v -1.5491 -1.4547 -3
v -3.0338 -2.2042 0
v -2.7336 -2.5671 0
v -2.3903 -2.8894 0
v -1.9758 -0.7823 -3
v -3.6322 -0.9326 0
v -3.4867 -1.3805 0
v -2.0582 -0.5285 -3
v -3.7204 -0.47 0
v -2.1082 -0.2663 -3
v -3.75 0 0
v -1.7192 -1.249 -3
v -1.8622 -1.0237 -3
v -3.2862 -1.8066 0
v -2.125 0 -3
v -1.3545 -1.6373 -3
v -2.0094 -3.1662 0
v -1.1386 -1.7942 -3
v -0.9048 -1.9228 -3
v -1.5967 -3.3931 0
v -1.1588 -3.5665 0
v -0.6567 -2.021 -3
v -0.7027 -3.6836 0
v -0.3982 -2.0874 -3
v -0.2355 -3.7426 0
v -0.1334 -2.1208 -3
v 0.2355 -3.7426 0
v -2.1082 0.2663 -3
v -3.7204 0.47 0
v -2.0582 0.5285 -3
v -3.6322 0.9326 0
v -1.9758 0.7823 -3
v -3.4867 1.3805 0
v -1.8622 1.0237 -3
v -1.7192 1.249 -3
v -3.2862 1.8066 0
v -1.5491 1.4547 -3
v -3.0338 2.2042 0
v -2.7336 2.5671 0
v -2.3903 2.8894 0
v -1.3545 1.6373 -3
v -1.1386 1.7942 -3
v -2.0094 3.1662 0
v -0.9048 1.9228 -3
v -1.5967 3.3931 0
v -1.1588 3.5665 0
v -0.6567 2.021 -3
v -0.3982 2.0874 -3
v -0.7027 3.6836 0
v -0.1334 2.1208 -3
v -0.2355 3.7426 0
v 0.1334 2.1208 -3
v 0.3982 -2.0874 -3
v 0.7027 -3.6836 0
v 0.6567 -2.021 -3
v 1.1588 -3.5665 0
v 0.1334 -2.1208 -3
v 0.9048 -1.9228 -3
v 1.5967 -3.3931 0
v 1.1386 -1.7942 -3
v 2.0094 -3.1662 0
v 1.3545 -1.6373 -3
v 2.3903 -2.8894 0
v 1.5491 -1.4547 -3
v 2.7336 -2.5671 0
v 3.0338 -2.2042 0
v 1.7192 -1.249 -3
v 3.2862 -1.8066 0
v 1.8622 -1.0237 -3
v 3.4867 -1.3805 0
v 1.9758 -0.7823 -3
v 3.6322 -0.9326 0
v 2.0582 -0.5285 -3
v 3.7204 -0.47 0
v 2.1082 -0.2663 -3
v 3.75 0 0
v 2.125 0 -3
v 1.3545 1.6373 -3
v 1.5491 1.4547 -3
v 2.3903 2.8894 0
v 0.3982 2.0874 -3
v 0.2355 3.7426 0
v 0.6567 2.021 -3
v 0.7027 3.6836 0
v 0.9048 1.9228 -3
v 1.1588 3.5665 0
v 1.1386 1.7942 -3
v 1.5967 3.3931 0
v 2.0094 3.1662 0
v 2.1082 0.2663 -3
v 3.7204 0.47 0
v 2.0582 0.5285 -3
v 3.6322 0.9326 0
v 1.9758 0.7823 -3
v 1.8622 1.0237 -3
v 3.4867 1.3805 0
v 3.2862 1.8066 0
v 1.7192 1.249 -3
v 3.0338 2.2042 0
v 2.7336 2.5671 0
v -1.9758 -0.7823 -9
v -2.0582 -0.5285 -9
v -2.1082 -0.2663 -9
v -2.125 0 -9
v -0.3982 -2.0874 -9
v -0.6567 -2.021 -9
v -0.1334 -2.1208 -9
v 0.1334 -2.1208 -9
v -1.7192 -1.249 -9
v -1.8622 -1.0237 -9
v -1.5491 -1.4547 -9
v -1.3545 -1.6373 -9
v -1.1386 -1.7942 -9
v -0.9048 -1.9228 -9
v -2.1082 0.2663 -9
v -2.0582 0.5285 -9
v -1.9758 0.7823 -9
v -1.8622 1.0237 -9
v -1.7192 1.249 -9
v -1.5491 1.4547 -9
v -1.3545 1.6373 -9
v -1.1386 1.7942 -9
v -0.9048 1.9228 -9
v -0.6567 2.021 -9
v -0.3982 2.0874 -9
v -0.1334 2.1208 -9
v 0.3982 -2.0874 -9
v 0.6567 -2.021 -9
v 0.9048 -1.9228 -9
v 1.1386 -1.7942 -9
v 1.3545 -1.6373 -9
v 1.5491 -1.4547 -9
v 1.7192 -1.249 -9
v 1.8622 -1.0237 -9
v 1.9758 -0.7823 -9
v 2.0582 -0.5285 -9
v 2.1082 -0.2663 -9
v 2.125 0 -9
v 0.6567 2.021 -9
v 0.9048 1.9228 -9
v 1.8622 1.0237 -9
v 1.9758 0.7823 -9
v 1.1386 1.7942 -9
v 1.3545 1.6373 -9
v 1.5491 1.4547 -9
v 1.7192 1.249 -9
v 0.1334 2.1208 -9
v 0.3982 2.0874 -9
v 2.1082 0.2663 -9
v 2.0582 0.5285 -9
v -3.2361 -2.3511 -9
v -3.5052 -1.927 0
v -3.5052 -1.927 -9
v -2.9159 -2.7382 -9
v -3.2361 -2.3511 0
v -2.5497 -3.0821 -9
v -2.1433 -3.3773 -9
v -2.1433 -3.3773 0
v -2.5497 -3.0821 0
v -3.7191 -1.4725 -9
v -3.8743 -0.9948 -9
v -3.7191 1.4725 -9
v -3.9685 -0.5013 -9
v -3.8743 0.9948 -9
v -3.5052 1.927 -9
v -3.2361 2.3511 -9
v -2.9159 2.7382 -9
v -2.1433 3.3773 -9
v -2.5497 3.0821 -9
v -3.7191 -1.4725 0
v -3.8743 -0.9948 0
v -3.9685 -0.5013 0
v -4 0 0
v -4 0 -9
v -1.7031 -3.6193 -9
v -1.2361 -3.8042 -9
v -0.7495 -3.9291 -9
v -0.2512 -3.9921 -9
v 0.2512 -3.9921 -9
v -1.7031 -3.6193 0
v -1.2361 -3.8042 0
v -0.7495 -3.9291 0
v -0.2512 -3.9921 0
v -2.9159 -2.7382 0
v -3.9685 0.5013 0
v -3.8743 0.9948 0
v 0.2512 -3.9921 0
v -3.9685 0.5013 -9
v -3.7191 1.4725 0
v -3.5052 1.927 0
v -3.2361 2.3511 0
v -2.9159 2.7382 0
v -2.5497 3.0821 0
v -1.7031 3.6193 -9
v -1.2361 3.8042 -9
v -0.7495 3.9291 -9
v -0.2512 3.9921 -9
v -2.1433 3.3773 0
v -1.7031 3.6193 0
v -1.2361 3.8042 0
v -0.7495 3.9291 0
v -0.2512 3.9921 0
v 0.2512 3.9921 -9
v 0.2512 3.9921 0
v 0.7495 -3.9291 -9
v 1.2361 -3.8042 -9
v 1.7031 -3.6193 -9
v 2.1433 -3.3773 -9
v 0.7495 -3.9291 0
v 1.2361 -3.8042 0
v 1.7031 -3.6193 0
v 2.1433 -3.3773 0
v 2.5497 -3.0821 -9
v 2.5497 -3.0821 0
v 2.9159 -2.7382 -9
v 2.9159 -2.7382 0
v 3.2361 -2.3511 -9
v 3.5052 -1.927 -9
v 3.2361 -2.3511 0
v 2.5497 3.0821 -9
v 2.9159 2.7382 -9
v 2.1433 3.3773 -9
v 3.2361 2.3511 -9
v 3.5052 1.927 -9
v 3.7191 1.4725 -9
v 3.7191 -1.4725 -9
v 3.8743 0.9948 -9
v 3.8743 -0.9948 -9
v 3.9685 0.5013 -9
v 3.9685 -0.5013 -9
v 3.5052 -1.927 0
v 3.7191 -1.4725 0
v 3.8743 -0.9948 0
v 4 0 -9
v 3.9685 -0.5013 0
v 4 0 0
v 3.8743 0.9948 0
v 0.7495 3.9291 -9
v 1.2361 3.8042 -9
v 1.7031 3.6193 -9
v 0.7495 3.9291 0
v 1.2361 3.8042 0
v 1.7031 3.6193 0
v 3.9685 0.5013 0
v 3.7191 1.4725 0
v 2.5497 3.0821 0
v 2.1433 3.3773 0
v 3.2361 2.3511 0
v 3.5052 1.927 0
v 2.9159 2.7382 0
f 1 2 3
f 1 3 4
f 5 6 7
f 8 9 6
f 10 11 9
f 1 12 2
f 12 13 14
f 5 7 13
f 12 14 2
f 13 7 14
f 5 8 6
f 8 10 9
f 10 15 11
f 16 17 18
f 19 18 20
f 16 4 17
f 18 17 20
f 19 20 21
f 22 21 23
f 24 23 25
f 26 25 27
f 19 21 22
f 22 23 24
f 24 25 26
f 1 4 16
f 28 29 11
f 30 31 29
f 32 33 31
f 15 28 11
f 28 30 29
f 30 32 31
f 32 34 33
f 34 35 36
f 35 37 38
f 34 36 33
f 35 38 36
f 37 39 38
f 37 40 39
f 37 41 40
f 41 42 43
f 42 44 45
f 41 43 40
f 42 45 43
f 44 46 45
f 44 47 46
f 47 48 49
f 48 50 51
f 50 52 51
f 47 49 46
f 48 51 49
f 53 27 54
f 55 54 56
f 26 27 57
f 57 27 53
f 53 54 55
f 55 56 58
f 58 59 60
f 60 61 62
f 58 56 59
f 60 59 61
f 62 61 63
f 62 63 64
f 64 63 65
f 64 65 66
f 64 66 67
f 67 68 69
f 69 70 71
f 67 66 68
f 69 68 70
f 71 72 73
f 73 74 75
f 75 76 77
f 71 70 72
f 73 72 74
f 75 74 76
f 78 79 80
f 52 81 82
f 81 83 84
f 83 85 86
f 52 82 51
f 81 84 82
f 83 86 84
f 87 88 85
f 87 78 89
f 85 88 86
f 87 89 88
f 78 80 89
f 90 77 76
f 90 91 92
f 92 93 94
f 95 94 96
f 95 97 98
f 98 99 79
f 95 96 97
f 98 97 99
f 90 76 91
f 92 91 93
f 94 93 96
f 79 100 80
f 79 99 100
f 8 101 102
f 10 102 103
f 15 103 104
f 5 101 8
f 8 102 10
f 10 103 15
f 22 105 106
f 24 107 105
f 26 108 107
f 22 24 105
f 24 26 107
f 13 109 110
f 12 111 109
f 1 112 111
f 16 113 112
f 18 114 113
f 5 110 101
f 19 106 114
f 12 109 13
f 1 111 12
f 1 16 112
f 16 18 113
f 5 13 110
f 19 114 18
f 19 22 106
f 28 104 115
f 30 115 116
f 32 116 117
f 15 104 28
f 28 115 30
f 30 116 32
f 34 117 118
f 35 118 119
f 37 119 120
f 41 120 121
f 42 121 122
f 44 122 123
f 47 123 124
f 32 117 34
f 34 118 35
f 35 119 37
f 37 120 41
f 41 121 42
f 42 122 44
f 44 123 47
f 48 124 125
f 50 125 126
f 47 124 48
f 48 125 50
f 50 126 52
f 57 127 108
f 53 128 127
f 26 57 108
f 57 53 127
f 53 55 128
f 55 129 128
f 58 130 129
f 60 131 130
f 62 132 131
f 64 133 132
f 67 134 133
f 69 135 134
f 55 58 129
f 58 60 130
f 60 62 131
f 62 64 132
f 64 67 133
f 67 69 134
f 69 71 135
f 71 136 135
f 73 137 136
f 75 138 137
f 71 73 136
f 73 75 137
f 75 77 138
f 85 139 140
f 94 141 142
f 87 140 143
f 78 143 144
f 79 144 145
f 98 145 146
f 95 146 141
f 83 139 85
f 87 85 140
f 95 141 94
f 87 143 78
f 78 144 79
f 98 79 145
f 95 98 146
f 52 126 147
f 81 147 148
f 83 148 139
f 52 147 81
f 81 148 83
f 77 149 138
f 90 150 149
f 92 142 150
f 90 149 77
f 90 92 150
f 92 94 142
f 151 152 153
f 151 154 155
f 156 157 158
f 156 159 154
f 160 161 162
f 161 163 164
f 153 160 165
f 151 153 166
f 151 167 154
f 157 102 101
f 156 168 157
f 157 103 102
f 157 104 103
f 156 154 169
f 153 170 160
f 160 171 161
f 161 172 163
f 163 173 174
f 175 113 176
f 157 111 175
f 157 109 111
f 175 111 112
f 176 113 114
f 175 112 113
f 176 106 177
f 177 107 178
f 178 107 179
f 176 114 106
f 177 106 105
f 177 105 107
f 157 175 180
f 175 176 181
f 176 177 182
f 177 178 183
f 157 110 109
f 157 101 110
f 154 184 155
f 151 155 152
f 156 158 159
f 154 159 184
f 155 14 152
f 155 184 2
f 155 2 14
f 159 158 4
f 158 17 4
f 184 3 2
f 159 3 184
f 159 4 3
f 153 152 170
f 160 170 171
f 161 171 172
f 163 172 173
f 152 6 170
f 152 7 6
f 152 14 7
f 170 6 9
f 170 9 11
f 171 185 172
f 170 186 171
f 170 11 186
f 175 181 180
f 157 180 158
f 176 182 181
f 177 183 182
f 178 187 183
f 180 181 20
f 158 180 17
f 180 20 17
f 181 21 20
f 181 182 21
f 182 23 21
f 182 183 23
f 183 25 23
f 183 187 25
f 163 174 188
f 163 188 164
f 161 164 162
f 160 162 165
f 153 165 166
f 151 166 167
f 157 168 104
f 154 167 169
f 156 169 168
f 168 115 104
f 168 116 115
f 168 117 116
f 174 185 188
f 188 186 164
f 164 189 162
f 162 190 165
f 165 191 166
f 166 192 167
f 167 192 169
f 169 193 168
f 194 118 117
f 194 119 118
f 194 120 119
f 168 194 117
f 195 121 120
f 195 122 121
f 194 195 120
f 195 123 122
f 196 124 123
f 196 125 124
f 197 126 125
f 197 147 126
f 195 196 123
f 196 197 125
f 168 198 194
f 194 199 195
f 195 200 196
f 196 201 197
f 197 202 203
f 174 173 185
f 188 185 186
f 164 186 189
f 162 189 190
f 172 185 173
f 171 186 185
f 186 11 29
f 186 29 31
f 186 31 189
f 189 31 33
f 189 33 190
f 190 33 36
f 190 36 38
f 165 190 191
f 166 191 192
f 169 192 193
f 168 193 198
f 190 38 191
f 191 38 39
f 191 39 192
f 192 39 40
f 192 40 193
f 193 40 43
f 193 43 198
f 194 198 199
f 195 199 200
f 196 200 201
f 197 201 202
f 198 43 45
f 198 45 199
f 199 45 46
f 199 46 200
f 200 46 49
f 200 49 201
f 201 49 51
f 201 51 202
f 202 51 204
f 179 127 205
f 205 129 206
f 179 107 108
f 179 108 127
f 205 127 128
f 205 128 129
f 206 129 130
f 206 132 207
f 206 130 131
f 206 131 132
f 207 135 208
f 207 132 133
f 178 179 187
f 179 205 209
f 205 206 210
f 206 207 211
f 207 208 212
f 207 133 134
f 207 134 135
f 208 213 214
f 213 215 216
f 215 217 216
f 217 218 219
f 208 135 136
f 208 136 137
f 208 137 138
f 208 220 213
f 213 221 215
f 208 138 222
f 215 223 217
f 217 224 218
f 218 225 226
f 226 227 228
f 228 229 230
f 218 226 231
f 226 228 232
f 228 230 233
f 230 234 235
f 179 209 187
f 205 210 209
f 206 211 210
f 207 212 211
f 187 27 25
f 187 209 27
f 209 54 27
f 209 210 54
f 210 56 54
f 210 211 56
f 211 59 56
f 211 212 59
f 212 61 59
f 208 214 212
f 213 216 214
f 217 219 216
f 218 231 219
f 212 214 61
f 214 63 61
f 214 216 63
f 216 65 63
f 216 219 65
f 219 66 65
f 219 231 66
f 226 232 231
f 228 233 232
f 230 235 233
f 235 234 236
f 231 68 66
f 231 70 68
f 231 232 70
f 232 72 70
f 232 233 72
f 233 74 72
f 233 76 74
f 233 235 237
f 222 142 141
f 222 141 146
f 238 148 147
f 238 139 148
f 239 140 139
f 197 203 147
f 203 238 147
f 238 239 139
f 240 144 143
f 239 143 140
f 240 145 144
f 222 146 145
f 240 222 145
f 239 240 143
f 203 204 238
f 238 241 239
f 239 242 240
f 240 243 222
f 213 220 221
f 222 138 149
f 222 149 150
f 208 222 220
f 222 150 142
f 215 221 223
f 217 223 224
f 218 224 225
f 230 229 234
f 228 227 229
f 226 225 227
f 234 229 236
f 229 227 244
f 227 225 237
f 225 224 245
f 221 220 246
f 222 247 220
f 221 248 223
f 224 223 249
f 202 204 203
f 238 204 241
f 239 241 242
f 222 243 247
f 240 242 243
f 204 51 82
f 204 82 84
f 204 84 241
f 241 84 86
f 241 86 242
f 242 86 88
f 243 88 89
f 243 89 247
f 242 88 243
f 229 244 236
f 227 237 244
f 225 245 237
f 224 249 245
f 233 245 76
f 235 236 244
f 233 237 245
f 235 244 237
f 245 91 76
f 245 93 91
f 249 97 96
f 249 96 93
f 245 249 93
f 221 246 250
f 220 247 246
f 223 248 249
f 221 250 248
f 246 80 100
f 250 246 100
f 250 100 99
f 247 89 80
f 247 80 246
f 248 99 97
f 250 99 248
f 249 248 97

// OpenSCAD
$fn = 50;

difference() {
	union() {
		translate(v = [0, 0, -9.0]) {
			cylinder(h = 12, r = 4.0);
		}
	}
	union() {
		translate(v = [0, 0, 0]) {
			rotate(a = [0, 0, 0]) {
				difference() {
					union() {
						translate(v = [0, 0, -12.0]) {
							cylinder(h = 12, r = 2.0);
						}
						translate(v = [0, 0, -3]) {
							cylinder(h = 3, r1 = 2.125, r2 = 3.75);
						}
						translate(v = [0, 0, -12.0]) {
							cylinder(h = 12, r = 2.125);
						}
						translate(v = [0, 0, -12.0]) {
							cylinder(h = 12, r = 2.0);
						}
					}
					union();
				}
			}
		}
		#cylinder(h = 3, r = 5.0);
	}
}
